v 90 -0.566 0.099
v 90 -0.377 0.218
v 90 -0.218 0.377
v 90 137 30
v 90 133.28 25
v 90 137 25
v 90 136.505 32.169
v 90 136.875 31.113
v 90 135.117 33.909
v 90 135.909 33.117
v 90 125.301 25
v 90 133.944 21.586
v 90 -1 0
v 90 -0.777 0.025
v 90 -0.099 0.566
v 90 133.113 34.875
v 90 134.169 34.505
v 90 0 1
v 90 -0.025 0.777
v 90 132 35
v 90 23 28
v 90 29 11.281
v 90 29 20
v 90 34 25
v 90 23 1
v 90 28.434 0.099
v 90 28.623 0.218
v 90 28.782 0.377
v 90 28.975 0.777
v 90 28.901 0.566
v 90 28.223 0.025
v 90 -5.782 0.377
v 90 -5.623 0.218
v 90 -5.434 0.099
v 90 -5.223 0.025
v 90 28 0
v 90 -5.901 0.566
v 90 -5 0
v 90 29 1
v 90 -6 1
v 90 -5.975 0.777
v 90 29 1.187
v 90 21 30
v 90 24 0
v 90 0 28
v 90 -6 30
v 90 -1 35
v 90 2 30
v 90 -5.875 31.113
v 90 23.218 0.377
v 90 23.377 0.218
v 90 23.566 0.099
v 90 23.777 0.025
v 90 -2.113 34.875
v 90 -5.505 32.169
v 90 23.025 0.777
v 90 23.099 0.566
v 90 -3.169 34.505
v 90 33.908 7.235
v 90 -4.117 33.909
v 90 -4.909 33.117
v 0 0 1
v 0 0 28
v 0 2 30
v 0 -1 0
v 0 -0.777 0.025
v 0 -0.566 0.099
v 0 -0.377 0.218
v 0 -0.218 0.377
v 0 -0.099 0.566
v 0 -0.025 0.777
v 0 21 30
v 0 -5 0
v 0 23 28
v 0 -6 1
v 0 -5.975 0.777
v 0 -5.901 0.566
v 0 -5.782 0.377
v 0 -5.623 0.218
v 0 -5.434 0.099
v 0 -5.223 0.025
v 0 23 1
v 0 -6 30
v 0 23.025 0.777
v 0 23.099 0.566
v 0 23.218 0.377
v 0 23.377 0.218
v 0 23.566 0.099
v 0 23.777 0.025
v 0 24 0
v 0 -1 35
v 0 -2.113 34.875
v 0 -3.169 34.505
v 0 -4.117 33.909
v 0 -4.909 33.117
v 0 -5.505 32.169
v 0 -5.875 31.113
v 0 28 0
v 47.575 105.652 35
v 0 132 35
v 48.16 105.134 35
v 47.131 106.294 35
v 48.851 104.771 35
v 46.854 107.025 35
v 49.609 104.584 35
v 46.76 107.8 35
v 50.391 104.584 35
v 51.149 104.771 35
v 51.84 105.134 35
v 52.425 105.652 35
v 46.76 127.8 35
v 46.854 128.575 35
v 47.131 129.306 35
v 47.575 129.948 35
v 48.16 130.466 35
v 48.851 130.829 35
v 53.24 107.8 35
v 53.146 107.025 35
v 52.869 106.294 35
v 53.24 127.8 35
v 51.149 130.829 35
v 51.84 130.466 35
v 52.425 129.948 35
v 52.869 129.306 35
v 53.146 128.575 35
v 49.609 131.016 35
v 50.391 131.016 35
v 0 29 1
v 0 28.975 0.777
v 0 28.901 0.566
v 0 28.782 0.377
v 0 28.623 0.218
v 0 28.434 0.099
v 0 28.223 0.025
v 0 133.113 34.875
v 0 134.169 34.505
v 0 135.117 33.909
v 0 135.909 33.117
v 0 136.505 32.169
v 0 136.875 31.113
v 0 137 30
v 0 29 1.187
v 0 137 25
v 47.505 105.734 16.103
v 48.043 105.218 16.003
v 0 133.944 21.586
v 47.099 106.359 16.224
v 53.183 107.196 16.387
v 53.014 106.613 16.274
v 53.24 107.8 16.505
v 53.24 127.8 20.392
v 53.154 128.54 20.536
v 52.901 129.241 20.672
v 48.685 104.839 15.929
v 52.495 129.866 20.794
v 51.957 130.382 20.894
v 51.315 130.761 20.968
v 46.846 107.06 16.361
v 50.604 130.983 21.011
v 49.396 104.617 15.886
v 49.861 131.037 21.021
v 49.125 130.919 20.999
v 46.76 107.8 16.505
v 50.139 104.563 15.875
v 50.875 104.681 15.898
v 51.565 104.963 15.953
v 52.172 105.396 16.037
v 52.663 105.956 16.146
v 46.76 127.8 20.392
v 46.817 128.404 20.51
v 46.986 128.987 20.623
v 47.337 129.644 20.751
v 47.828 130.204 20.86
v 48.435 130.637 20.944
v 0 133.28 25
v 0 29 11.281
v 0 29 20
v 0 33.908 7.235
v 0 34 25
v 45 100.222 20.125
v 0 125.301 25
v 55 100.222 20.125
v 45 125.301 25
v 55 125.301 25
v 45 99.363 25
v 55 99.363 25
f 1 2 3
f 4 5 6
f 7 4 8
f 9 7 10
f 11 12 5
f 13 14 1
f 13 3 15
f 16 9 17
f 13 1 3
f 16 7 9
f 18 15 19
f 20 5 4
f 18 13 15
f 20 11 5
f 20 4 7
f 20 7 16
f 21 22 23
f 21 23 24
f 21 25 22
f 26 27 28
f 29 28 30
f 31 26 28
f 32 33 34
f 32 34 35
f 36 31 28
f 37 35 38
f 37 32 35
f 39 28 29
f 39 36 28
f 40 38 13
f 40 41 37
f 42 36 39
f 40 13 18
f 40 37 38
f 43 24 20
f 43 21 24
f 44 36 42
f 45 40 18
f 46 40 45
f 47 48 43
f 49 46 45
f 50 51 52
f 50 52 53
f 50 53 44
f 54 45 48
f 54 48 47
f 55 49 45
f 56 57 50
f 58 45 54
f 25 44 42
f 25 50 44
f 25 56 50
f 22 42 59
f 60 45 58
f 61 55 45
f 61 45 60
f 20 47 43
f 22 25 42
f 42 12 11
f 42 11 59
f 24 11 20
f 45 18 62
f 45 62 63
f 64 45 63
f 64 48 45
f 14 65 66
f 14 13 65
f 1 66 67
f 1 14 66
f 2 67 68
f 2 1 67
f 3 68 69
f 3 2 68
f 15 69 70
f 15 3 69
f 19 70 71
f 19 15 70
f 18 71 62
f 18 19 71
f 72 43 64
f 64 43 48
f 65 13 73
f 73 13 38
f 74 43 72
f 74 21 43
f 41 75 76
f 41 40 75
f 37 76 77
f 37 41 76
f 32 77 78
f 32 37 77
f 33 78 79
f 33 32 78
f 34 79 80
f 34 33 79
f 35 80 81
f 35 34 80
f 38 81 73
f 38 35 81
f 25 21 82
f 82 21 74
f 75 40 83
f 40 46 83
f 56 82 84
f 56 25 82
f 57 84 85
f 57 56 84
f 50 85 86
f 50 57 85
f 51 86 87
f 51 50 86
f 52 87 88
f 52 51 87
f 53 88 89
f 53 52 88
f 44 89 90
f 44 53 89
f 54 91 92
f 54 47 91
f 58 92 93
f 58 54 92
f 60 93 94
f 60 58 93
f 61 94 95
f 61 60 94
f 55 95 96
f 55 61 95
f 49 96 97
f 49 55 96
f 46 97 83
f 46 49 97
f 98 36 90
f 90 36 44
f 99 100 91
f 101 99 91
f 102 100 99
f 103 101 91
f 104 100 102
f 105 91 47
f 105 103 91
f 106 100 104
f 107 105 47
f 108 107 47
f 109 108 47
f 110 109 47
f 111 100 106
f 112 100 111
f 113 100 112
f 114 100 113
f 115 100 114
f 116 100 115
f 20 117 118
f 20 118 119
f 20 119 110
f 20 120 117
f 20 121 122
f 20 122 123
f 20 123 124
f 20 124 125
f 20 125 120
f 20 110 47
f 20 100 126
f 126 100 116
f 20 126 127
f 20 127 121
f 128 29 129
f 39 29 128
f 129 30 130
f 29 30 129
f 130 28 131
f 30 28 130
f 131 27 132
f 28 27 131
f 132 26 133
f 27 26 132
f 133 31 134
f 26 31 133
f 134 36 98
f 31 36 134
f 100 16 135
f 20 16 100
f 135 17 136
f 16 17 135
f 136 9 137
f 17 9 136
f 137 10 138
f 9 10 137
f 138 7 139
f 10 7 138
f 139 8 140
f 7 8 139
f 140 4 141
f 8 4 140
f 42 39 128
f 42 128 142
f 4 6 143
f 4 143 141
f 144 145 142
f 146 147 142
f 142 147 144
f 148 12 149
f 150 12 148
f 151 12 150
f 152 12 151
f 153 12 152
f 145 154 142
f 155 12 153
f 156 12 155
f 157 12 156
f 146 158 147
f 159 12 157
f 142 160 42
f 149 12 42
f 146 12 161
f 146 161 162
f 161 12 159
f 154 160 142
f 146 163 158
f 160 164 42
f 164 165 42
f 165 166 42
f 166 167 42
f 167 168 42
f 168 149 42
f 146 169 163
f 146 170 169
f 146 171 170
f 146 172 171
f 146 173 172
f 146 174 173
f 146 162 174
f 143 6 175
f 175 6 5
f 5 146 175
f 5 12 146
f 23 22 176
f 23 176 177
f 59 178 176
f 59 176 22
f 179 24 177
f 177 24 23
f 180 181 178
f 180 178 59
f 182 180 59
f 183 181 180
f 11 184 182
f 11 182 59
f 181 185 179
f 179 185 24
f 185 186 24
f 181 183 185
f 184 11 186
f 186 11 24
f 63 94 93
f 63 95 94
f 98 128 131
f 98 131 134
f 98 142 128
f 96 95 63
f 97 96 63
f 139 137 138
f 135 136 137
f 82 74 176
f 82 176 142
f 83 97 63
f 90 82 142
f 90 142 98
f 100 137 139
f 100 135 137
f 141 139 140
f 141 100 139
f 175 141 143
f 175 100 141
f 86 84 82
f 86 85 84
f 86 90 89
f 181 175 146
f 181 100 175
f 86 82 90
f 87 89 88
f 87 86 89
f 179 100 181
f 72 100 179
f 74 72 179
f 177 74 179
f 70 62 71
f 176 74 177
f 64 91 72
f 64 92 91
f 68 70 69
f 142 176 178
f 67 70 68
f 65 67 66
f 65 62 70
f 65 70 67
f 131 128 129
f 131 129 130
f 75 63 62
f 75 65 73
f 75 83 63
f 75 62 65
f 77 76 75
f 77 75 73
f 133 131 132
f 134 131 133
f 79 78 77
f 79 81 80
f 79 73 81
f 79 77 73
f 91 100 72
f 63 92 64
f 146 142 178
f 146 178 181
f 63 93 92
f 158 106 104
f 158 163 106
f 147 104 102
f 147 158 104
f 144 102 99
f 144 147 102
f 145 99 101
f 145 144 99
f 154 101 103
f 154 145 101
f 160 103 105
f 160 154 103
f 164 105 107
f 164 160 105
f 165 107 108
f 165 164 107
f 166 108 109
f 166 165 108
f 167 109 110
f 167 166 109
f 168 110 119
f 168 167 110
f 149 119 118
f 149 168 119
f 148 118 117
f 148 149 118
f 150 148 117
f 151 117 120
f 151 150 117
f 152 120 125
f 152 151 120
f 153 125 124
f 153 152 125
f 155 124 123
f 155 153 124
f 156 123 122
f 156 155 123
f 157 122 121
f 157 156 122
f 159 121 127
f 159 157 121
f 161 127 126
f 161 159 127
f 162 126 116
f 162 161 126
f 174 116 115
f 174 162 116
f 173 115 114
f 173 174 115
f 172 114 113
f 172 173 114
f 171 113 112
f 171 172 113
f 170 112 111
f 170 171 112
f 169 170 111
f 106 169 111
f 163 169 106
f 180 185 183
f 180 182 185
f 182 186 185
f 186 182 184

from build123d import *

# Parameters (mm, degrees)
EXTRUDE_DEPTH     = 40
BOX004_W          = 10
BOX004_H          = 33
BOX004_DEPTH      = 11
BOX004_ROLL_ANGLE = 10
BOX_W             = 90
BOX_H             = 23
BOX_DEPTH         = 30
BOX002_W          = 90
BOX002_H          = 110
BOX002_DEPTH      = 10
BOX003_W          = 90
BOX003_H          = 110
BOX003_DEPTH      = 5
BOX003_ROLL_ANGLE = 11
BOX001_W          = 90
BOX001_H          = 35
BOX001_DEPTH      = 35
CHAMFER_SIZE      = 5
FILLET_R          = 5
FILLET001_R       = 5
FILLET002_R       = 1
CHAMFER001_SIZE   = 2


with BuildPart() as extrude_body:
    # Sketch → Extrude (new body)
    with BuildSketch(Plane.XY):
        with BuildLine():
            ThreePointArc((3.239725, 4.799999), (0, 8.039724), (-3.239725, 4.799999))
            Line((-3.239725, 4.799999), (-3.239725, -15.2))
            ThreePointArc((-3.239725, -15.2), (0, -18.439725), (3.239725, -15.2))
            Line((3.239725, 4.799999), (3.239725, -15.2))
        make_face()
    extrude(amount=EXTRUDE_DEPTH)


with BuildPart() as extrude_body_1:
    # Extrude placement: moved
    add(extrude_body.part.moved(Location((50, 123, 0))))


with BuildPart() as cubo:
    # Box004 → Box004 (new body)
    with BuildSketch(Plane.XY):
        with Locations((5, 16.5)):
            Rectangle(BOX004_W, BOX004_H)
    extrude(amount=BOX004_DEPTH)


with BuildPart() as cubo_1:
    # Box004 roll: moved
    add(cubo.part.rotate(Axis((0, 0, 0), (1, 0, 0)), BOX004_ROLL_ANGLE))


with BuildPart() as cubo_2:
    # Box004 placement: moved
    add(cubo_1.part.moved(Location((45, 100.726682, 17.263939))))


with BuildPart() as cabecero:
    # Box → Box (new body)
    with BuildSketch(Plane.XY):
        with Locations((45, 11.5)):
            Rectangle(BOX_W, BOX_H)
    extrude(amount=BOX_DEPTH)


with BuildPart() as soporte_superior:
    # Box002 → Box002 (new body)
    with BuildSketch(Plane(origin=(0, 27, 25), x_dir=(1, 0, 0), z_dir=(0, 0, 1))):
        with Locations((45, 55)):
            Rectangle(BOX002_W, BOX002_H)
    extrude(amount=BOX002_DEPTH)


with BuildPart() as soporte_superior001:
    # Box003 → Box003 (new body)
    with BuildSketch(Plane.XY):
        with Locations((45, 55)):
            Rectangle(BOX003_W, BOX003_H)
    extrude(amount=BOX003_DEPTH)


with BuildPart() as soporte_superior001_1:
    # Box003 roll: moved
    add(soporte_superior001.part.rotate(Axis((0, 0, 0), (1, 0, 0)), BOX003_ROLL_ANGLE))


with BuildPart() as soporte_superior001_2:
    # Box003 placement: moved
    add(soporte_superior001_1.part.moved(Location((0, 25.96455, 0.597369))))


with BuildPart() as soporte_proyector:
    # Box001 → Box001 (new body)
    with BuildSketch(Plane(origin=(0, -6, 0), x_dir=(1, 0, 0), z_dir=(0, 0, 1))):
        with Locations((45, 17.5)):
            Rectangle(BOX001_W, BOX001_H)
    extrude(amount=BOX001_DEPTH)

    # Fusion: union soporte superior, soporte superior001
    add(soporte_superior.part)
    add(soporte_superior001_2.part)

    # Cut: cut cabecero
    add(cabecero.part, mode=Mode.SUBTRACT)

    # Chamfer
    chamfer_edges = [soporte_proyector.edges().sort_by_distance(p)[0] for p in [
        (45, 29, 25),
        (45, 29, 6.280985),
    ]]
    chamfer(chamfer_edges, length=CHAMFER_SIZE)

    # Fillet
    fillet_edges = [soporte_proyector.edges().sort_by_distance(p)[0] for p in [
        (45, -6, 35),
    ]]
    fillet(fillet_edges, radius=FILLET_R)

    # Fillet001
    fillet001_edges = [soporte_proyector.edges().sort_by_distance(p)[0] for p in [
        (45, 137, 35),
    ]]
    fillet(fillet001_edges, radius=FILLET001_R)

    # Fillet002
    fillet002_edges = [soporte_proyector.edges().sort_by_distance(p)[0] for p in [
        (45, -6, 0),
        (45, 0, 0),
        (45, 29, 0),
        (45, 23, 0),
    ]]
    fillet(fillet002_edges, radius=FILLET002_R)

    # Chamfer001
    chamfer001_edges = [soporte_proyector.edges().sort_by_distance(p)[0] for p in [
        (45, 0, 30),
        (45, 23, 30),
    ]]
    chamfer(chamfer001_edges, length=CHAMFER001_SIZE)

    # Fusion001: union Cubo
    add(cubo_2.part)

    # Cut001: cut Extrude body
    add(extrude_body_1.part, mode=Mode.SUBTRACT)


solid = soporte_proyector.part
